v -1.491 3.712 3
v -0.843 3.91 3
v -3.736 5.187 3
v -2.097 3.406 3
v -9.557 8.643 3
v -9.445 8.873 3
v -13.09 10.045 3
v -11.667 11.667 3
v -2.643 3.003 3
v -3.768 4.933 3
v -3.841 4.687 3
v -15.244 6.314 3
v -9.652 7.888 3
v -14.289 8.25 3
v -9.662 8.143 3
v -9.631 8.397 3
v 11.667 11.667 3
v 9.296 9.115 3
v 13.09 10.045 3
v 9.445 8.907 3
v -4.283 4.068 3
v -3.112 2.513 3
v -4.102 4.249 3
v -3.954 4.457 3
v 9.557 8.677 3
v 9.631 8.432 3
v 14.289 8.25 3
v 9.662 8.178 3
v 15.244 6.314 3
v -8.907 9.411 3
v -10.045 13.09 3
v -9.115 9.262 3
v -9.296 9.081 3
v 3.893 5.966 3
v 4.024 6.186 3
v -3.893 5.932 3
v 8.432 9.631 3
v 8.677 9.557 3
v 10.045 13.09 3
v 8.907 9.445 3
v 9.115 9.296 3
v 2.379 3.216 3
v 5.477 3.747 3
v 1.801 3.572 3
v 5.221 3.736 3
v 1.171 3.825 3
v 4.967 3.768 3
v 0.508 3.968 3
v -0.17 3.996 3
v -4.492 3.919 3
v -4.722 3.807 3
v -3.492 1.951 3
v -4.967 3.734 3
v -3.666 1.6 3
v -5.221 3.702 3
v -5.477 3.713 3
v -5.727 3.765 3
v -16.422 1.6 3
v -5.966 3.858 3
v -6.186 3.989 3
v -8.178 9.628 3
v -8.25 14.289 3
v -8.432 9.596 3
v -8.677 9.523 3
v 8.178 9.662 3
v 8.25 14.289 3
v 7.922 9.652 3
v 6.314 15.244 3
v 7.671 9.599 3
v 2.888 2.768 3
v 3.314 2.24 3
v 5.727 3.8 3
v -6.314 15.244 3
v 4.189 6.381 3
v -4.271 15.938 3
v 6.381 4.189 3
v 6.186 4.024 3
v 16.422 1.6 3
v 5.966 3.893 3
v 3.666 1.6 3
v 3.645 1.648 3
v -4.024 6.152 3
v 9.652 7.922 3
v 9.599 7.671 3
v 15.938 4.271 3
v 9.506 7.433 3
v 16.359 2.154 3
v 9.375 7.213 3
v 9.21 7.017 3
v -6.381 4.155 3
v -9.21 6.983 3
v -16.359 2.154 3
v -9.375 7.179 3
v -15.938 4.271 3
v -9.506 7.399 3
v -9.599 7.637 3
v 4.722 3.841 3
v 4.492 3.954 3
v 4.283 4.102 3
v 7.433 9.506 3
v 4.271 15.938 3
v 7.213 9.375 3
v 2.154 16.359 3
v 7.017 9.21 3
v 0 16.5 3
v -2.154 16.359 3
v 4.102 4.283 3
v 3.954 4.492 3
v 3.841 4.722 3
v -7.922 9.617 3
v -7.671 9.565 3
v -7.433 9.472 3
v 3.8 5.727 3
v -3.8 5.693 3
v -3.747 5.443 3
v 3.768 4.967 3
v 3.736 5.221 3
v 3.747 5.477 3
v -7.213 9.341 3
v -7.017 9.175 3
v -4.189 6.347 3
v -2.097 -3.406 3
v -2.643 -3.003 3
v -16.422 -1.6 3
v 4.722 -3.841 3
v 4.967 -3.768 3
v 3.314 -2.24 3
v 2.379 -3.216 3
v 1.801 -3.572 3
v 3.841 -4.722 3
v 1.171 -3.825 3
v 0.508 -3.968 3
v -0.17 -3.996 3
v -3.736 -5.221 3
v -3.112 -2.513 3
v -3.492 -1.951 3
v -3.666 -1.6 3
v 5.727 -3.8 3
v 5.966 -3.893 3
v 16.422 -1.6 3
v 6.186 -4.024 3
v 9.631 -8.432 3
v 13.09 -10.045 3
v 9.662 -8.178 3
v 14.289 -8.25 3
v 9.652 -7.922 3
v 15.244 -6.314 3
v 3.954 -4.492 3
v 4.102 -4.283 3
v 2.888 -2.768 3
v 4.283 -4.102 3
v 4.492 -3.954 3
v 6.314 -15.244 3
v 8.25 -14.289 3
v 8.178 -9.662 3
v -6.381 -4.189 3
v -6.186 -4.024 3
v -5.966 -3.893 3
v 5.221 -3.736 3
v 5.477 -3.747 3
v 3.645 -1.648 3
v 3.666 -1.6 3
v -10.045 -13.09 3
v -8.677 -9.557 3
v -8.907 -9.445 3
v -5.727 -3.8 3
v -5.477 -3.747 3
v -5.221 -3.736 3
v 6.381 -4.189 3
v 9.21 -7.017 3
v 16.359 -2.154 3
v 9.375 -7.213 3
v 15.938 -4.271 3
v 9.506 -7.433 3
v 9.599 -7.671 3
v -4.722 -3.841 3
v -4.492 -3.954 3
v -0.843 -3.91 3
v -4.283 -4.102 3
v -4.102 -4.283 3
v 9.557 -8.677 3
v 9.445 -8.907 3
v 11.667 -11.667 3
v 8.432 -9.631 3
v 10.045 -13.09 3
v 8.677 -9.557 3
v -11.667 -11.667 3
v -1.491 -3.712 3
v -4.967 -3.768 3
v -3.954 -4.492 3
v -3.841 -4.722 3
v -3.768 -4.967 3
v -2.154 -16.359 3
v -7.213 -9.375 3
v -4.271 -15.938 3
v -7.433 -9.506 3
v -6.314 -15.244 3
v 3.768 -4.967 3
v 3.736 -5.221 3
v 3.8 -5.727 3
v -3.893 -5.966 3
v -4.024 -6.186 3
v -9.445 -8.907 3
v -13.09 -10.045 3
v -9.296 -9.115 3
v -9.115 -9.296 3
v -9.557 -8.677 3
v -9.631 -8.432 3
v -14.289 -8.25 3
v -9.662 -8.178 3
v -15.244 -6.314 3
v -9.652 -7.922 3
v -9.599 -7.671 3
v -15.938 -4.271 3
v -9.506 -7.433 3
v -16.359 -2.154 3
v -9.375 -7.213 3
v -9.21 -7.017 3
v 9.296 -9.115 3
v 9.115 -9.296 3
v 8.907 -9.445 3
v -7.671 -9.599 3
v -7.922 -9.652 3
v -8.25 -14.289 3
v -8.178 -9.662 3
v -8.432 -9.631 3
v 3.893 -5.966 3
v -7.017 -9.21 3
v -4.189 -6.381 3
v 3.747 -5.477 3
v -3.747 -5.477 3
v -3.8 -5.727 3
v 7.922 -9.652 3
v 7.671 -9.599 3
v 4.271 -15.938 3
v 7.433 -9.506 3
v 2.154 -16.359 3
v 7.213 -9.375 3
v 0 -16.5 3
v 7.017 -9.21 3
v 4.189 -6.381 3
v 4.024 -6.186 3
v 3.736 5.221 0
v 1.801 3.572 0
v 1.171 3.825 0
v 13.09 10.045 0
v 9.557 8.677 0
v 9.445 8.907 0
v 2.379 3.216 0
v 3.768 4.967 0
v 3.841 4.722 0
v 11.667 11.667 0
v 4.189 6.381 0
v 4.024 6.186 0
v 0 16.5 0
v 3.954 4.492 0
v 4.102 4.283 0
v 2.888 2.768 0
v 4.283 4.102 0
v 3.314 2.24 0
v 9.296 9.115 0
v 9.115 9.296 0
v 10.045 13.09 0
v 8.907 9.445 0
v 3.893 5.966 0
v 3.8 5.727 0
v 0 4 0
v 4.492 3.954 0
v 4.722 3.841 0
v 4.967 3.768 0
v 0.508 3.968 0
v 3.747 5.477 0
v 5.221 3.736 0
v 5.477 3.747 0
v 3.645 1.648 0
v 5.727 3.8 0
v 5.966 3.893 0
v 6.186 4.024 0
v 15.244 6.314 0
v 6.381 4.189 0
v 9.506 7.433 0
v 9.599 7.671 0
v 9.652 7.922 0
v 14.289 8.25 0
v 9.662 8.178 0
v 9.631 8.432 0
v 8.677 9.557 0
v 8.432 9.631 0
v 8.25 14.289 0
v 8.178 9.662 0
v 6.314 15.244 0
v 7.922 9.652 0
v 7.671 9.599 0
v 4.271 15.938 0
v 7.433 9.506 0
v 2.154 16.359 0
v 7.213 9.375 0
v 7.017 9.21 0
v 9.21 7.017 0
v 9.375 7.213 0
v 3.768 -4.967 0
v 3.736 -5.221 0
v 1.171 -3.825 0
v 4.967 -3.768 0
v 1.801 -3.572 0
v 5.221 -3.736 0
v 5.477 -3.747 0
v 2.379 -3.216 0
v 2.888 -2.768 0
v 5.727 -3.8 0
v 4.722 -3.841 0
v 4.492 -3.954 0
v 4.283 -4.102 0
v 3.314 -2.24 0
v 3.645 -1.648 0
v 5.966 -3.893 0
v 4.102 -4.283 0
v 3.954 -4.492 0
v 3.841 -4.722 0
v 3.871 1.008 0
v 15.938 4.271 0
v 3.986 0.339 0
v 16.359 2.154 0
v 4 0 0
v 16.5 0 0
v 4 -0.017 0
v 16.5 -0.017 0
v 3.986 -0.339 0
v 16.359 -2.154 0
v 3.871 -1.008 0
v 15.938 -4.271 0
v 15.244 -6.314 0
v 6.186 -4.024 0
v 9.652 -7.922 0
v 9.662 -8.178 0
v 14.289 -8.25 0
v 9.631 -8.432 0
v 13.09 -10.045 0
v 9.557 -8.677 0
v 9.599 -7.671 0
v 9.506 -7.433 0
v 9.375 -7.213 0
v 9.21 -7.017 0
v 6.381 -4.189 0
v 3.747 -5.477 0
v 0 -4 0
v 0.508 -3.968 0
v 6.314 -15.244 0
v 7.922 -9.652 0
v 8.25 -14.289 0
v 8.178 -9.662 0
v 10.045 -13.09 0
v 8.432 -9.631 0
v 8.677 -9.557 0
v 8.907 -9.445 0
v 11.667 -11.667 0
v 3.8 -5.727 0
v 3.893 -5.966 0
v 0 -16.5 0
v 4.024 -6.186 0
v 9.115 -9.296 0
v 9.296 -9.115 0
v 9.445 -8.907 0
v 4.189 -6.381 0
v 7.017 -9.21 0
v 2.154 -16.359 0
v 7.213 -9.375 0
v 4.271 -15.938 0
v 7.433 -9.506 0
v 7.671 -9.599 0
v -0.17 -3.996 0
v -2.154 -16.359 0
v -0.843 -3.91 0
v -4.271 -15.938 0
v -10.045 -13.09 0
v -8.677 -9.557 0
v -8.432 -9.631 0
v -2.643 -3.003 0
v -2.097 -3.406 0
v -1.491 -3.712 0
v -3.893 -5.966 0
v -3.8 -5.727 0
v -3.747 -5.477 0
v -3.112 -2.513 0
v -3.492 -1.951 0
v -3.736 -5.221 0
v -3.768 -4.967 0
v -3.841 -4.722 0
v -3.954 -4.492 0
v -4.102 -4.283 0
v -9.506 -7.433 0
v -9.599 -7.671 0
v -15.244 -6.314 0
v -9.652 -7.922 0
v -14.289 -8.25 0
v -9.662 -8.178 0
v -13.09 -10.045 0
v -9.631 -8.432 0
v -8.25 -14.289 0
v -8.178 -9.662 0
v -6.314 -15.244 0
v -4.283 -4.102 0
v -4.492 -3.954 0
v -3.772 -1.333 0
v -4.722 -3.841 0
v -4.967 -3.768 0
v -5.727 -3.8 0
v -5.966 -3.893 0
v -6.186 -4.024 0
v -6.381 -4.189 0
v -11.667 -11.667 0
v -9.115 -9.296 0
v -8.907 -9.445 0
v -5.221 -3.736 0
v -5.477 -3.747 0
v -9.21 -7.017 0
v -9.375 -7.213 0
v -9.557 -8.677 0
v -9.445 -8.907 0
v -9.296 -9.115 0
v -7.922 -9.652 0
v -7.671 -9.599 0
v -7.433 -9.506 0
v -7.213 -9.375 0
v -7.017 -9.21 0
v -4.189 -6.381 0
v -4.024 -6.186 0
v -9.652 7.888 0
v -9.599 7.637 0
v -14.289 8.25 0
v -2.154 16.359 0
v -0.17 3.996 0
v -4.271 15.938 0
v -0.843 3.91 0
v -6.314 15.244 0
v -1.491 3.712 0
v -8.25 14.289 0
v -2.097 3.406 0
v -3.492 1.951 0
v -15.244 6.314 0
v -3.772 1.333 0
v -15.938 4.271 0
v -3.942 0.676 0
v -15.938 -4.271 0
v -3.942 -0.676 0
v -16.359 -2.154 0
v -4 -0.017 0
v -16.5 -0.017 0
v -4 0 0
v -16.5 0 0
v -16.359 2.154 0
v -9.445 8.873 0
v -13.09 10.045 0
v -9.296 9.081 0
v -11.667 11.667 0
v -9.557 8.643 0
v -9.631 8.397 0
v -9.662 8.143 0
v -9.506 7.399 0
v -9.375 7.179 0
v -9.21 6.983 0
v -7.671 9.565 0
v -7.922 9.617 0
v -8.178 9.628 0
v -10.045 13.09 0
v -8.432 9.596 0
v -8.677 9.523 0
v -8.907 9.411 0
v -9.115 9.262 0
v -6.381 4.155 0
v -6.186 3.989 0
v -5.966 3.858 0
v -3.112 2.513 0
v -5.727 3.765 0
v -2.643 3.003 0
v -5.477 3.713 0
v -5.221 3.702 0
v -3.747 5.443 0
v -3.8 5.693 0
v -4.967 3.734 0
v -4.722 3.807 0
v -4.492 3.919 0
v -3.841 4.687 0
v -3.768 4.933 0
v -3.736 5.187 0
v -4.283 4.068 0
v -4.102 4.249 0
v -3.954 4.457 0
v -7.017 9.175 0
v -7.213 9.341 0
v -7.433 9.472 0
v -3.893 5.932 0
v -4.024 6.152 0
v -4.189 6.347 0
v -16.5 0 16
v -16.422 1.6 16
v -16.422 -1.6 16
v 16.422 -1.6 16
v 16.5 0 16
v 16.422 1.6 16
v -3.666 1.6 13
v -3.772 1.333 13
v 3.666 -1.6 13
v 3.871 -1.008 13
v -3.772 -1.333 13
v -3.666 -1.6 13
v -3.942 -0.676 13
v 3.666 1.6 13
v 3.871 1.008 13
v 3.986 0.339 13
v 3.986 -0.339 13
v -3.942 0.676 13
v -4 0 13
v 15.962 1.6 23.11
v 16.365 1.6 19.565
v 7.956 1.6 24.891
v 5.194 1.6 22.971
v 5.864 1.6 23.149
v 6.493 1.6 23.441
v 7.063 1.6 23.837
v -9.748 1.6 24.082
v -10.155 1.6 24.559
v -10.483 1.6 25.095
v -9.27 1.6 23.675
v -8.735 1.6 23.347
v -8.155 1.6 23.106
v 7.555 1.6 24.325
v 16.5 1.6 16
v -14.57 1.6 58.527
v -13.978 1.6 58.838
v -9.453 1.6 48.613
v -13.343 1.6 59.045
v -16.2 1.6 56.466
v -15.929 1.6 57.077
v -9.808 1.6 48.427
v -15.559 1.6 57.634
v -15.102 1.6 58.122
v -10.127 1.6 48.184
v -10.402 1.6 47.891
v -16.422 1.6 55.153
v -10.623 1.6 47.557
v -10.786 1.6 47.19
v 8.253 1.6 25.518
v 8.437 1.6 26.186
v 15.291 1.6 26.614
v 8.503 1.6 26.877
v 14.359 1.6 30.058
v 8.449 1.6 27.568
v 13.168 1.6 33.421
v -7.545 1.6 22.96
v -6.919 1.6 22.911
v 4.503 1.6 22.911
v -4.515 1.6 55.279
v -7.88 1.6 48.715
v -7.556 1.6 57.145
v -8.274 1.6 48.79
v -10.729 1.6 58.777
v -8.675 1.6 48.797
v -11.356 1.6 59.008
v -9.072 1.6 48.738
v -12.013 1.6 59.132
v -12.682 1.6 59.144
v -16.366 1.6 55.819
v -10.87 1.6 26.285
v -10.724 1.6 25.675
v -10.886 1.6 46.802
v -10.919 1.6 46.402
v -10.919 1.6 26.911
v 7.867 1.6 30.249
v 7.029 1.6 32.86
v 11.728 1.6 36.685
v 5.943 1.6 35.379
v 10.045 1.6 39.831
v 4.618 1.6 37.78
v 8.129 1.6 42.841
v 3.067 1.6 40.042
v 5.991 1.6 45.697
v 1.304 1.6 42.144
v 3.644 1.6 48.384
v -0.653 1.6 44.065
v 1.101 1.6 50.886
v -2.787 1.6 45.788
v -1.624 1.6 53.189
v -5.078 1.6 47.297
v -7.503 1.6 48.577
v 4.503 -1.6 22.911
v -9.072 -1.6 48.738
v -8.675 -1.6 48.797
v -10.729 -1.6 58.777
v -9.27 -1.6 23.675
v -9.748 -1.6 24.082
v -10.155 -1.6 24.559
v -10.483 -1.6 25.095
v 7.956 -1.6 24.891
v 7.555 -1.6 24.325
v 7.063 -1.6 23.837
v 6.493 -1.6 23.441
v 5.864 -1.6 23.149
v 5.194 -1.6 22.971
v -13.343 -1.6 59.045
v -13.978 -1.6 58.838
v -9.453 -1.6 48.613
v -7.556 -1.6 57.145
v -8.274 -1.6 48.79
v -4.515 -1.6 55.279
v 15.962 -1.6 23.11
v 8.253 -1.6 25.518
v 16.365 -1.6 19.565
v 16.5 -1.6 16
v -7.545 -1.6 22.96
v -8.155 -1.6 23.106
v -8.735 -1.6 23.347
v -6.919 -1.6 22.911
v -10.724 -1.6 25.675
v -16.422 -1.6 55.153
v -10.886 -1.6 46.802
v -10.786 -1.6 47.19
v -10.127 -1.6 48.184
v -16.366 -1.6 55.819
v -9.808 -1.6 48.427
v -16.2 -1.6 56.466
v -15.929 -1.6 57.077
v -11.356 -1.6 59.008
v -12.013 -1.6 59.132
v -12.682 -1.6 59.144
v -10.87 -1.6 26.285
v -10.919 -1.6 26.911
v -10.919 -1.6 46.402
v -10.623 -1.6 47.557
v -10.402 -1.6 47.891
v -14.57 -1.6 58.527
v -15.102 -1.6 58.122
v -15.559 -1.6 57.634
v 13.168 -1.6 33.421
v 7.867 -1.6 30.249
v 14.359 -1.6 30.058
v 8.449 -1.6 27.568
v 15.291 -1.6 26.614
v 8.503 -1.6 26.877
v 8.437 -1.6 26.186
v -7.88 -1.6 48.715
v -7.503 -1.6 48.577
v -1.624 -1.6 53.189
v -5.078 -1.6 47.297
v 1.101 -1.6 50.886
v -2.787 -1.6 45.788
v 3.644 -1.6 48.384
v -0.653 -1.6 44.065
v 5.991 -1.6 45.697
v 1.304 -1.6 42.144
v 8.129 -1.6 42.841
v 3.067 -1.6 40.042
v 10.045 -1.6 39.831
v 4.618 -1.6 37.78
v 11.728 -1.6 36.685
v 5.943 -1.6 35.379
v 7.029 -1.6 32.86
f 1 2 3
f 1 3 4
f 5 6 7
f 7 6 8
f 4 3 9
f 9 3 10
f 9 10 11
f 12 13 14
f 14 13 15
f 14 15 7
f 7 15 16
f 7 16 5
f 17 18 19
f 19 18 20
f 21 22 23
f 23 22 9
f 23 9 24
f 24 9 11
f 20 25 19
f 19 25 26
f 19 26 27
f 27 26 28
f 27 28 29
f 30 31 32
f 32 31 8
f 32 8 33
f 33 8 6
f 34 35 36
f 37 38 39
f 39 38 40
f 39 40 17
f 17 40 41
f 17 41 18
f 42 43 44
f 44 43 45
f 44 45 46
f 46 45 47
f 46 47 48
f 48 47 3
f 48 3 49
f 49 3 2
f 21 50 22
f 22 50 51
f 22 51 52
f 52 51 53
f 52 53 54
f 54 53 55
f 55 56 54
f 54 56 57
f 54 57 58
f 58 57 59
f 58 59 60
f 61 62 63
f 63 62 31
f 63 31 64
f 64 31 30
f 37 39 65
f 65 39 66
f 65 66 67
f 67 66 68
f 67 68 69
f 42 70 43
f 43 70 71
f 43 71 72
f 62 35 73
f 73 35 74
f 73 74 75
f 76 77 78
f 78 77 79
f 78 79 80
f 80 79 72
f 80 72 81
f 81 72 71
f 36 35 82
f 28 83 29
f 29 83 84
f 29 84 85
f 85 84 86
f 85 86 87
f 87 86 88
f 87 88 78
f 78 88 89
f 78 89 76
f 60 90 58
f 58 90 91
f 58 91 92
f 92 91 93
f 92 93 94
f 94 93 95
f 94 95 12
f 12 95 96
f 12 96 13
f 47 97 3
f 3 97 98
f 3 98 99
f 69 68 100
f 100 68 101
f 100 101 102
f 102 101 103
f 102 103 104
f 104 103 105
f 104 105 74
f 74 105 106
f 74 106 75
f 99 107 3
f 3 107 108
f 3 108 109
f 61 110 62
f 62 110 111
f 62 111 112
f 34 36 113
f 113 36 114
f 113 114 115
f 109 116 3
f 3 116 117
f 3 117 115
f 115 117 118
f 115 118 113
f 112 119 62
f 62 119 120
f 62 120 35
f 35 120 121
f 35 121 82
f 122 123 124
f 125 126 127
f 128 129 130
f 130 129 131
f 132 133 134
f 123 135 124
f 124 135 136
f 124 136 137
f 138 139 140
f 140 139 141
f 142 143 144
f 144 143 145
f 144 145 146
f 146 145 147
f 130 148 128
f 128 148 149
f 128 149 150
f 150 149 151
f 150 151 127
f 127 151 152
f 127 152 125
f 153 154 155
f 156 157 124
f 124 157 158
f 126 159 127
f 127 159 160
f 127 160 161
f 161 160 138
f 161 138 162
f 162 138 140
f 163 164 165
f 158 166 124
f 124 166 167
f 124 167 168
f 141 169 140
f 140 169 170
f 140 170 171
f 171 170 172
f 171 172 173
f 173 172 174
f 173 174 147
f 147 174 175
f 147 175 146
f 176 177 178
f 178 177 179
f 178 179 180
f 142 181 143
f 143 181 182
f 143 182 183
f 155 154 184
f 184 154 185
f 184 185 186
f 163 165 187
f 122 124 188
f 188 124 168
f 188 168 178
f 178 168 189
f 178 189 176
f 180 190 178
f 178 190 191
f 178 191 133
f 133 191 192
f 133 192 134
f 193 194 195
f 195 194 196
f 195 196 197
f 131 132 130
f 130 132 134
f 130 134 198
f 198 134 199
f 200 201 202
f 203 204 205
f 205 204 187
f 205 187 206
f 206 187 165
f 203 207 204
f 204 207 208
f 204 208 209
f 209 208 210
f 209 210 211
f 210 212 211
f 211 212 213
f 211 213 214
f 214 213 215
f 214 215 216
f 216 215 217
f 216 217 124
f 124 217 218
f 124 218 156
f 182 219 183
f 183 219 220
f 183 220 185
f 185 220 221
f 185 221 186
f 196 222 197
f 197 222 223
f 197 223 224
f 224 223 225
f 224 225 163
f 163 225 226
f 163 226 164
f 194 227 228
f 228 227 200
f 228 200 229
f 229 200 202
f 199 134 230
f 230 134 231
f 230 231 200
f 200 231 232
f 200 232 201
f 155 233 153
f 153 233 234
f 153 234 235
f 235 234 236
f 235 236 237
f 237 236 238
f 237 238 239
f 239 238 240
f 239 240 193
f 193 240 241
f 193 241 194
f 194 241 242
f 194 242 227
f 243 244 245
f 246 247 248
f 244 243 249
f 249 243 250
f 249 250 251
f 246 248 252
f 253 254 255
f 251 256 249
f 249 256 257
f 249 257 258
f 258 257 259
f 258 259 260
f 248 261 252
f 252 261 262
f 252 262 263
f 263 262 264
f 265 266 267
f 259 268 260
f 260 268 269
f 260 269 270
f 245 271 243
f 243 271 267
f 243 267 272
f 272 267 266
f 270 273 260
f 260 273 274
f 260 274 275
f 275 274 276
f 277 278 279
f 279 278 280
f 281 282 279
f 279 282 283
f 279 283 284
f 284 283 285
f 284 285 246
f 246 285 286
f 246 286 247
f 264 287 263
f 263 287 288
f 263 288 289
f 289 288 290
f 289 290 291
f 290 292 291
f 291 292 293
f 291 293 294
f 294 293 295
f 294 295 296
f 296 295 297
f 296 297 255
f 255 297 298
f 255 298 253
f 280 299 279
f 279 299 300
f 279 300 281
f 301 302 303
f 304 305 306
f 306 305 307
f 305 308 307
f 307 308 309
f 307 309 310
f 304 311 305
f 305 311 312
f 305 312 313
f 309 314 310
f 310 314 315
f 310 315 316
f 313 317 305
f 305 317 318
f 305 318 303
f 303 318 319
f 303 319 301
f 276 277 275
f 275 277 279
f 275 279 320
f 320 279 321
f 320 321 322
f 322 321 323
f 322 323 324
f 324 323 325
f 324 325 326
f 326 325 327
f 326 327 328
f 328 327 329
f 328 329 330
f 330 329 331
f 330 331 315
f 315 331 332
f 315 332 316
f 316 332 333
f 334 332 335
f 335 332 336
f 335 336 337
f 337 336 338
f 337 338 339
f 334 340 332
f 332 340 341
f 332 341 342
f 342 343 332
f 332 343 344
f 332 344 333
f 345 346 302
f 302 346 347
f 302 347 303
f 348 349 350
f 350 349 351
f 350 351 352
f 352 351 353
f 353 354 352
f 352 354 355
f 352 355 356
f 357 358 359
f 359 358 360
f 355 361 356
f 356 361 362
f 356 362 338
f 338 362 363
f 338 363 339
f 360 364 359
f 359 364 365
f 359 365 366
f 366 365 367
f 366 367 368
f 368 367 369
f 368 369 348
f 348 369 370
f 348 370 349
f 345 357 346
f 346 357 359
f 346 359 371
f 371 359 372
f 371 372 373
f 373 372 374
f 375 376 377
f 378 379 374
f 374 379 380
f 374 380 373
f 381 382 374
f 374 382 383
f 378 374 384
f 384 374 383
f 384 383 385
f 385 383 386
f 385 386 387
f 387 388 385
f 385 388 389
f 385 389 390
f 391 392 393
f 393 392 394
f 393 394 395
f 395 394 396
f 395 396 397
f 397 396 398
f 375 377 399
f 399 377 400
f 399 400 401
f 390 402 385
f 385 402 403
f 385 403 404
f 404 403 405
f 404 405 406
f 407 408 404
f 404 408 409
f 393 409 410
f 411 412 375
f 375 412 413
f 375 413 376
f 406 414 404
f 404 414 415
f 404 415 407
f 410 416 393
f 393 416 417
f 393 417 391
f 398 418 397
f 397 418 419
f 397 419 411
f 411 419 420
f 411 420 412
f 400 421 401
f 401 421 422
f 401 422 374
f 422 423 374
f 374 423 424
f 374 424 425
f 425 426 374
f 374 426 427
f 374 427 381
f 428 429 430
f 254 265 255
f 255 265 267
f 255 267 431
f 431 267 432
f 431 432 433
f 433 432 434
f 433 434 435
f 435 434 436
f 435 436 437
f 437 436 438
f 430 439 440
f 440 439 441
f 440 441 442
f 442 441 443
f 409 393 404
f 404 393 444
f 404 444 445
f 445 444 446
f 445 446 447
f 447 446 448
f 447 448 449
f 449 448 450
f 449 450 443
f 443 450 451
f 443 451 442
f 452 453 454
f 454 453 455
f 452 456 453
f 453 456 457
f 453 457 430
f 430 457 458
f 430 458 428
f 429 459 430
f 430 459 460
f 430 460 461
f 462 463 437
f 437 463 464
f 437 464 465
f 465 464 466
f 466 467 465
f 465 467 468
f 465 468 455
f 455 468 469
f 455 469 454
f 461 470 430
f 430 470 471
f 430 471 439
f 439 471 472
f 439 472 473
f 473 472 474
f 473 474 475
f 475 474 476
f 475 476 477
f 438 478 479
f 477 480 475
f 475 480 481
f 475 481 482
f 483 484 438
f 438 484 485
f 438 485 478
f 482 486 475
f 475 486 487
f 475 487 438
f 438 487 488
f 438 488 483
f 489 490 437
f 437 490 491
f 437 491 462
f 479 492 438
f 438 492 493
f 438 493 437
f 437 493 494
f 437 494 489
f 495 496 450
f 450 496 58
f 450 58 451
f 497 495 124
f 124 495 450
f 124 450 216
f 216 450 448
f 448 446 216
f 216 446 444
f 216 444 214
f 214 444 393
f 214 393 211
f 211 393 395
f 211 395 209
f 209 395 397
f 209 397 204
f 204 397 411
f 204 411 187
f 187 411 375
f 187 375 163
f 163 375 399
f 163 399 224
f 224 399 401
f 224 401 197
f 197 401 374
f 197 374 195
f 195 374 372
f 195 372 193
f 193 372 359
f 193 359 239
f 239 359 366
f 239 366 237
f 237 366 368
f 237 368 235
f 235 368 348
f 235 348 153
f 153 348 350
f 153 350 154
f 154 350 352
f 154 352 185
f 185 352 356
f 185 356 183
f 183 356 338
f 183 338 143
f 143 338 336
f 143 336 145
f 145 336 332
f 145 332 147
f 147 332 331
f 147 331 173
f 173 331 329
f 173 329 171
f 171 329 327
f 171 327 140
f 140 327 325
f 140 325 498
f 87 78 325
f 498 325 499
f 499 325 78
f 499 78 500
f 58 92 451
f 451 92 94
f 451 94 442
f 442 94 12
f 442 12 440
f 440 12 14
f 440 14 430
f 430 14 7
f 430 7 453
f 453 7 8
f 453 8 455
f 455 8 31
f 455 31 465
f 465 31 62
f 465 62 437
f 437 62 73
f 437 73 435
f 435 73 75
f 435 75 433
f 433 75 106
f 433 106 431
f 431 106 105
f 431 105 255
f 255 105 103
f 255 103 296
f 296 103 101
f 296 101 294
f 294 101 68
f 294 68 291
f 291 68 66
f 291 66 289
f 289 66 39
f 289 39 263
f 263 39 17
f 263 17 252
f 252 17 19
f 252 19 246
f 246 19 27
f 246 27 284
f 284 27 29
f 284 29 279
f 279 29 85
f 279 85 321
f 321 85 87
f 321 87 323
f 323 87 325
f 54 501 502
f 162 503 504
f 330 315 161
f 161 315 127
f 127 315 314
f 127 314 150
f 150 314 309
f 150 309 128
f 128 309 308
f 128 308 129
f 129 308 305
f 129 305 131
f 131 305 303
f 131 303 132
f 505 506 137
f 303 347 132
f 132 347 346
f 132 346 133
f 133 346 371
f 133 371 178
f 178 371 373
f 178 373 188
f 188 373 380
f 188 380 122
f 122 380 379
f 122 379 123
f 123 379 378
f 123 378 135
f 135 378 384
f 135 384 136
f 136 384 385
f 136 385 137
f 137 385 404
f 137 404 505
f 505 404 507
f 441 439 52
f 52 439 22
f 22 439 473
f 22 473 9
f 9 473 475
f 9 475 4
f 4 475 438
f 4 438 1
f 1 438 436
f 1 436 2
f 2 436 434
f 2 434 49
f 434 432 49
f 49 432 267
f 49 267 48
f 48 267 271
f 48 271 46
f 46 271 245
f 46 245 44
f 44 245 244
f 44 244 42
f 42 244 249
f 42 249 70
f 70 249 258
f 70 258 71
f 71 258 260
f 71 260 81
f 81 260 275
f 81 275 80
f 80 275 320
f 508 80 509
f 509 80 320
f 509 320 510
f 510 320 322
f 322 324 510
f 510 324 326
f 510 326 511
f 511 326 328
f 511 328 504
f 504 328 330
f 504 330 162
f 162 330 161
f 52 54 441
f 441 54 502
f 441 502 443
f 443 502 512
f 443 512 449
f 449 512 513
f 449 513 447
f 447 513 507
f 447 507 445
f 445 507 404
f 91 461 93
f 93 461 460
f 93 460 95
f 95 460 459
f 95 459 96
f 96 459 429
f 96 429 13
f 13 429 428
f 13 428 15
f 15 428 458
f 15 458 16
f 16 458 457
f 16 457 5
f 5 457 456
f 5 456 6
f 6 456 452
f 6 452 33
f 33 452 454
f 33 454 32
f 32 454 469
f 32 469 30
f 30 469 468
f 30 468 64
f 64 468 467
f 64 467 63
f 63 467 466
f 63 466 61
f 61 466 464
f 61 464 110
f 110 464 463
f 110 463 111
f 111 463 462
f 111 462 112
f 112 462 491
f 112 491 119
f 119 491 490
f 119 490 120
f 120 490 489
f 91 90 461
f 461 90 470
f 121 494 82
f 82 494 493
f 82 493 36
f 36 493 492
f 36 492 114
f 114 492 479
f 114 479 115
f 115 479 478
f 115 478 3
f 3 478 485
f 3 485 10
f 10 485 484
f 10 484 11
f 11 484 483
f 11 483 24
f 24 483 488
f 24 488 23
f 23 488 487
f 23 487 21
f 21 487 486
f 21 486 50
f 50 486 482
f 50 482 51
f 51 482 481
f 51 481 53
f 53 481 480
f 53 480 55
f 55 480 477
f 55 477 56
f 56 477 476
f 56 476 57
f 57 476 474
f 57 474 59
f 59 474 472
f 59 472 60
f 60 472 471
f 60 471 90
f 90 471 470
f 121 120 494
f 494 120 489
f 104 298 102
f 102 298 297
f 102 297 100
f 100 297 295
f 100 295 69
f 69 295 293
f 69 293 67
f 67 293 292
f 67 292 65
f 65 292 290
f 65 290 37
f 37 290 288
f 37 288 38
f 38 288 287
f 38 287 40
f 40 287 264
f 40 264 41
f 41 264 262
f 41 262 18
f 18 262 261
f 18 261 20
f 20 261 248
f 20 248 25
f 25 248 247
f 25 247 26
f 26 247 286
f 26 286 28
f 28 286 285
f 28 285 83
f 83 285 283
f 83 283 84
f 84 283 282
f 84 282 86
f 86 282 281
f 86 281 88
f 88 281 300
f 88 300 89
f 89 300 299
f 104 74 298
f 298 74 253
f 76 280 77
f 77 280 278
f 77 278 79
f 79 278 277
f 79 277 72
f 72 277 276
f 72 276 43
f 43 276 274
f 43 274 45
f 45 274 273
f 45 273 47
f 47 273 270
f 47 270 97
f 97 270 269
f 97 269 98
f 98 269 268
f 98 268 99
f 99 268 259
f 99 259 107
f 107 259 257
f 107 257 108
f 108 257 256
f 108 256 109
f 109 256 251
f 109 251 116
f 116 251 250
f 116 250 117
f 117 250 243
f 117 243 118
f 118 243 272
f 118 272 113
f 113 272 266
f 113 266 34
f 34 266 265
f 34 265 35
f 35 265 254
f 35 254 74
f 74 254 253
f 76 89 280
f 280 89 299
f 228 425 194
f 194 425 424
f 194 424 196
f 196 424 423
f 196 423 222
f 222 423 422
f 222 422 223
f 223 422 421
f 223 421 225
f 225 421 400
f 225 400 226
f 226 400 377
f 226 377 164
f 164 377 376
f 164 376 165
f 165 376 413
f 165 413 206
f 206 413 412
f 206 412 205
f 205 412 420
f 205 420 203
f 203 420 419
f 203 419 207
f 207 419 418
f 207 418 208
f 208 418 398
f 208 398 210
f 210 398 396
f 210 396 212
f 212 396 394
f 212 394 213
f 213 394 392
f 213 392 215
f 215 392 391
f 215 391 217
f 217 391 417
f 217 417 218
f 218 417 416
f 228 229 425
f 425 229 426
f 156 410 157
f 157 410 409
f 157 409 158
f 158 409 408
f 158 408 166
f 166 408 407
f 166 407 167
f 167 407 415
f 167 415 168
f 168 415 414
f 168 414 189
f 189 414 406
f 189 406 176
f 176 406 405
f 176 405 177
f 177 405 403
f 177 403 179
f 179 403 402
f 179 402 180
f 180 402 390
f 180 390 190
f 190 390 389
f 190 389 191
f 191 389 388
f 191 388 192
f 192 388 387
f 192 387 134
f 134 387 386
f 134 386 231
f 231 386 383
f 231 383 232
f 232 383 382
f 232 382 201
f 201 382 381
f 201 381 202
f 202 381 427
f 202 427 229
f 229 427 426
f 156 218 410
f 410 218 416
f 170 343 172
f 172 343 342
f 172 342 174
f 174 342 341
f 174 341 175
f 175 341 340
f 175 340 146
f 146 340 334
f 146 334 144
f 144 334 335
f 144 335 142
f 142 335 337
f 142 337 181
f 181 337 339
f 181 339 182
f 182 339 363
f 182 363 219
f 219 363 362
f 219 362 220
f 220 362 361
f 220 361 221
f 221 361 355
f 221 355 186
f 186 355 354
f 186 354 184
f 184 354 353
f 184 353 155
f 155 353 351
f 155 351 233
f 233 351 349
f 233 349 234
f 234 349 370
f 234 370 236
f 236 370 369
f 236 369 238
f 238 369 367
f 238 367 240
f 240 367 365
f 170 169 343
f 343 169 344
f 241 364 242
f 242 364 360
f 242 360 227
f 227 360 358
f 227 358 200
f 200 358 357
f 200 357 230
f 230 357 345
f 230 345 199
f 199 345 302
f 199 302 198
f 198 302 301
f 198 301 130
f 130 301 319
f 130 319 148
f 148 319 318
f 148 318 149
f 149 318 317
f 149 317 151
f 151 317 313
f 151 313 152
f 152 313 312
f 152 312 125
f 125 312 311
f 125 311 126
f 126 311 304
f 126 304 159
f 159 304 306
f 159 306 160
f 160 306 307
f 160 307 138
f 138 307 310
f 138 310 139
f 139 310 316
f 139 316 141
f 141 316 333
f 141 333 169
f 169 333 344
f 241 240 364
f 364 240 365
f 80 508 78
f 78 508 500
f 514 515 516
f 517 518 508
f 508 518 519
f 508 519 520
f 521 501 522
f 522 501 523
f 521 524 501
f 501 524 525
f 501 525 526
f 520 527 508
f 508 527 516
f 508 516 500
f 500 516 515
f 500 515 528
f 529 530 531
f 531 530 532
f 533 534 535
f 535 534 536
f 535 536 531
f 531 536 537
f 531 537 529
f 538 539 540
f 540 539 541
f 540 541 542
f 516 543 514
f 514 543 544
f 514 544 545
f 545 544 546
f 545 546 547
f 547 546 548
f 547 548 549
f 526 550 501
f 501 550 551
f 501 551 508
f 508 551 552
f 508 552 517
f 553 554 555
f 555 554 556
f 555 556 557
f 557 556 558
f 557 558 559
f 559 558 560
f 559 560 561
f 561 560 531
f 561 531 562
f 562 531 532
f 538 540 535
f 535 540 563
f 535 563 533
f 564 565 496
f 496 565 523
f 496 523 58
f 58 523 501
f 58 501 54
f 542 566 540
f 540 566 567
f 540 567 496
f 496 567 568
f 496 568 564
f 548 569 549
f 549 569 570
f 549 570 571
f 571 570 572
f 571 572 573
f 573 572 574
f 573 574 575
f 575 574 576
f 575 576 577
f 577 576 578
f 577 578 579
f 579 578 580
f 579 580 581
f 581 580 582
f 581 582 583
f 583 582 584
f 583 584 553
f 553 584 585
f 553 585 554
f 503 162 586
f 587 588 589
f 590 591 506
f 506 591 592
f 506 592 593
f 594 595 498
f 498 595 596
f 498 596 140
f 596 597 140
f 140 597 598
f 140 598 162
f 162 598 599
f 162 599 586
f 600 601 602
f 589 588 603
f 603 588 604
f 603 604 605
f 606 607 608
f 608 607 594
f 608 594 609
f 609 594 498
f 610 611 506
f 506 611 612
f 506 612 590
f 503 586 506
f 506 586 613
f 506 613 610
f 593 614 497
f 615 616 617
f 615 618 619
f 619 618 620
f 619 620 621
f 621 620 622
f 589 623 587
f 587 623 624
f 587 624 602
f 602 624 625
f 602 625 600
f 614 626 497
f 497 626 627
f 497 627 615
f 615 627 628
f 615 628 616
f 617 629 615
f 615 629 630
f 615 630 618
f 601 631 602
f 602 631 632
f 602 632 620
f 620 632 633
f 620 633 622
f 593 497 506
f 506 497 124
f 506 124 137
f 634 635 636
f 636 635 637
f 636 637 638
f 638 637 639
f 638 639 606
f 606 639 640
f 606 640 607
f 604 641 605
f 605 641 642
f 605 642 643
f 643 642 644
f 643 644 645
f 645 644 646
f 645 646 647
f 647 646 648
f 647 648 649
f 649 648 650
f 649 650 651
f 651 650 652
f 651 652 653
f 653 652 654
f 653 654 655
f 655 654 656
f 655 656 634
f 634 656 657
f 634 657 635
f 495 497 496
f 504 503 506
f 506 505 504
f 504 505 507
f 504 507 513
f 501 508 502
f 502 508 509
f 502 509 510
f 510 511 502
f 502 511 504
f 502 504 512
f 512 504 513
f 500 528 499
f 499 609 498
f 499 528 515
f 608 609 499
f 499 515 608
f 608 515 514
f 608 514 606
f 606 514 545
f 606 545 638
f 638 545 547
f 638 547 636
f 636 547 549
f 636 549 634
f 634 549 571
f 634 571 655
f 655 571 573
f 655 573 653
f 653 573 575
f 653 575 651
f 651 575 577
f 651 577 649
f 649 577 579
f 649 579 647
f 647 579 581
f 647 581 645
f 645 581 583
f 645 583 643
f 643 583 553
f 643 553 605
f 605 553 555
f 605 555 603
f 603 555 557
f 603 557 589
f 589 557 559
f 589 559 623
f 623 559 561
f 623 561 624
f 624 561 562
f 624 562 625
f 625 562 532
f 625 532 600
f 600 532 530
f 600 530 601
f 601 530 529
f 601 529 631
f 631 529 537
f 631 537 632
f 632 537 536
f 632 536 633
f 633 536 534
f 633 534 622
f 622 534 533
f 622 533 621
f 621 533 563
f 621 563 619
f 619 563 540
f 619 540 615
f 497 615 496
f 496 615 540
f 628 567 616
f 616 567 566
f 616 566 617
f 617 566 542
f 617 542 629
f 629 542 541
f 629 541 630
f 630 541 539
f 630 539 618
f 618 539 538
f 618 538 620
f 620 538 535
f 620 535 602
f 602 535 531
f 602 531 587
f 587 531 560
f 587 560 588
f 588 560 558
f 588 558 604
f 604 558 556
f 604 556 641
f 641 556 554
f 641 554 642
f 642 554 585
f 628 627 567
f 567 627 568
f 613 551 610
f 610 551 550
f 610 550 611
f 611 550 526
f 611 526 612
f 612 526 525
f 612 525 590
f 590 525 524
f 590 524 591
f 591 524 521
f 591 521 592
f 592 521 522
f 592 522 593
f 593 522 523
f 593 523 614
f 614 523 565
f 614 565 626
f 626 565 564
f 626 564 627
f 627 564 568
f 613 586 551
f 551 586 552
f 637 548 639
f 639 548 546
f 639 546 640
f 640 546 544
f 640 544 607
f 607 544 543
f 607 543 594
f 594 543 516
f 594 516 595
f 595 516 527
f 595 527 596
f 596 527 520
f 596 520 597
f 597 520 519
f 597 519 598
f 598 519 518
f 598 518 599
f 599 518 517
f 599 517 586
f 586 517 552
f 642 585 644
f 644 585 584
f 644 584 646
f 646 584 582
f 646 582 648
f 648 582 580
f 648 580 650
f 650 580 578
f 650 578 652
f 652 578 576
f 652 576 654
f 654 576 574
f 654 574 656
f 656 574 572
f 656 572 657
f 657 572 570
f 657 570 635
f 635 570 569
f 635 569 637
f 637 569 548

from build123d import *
from build123d.topology import SkipClean

# Parameters (mm, degrees)
SKETCH_1_R       = 16.5
SKETCH_1_R_2     = 4
EXTRUDE_4_DEPTH  = 3
EXTRUDE_6_DEPTH  = 10
EXTRUDE_12_DEPTH = 3
EXTRUDE_14_DEPTH = 3.2


with BuildPart() as part:
    # 草图1 → 凸台-拉伸4 (new body)
    with BuildSketch(Plane.XY):
        with Locations((0, 3e-09)):
            Circle(SKETCH_1_R)
        with Locations((0, 3e-09)):
            Circle(SKETCH_1_R_2, mode=Mode.SUBTRACT)
        with BuildLine():
            Line((-7.017492281, 9.175302033), (-4.189065156, 6.346874908))
            ThreePointArc((-4.189065156, 6.346874908), (-4.189065156, 4.154843887), (-6.381096178, 4.154843887))
            Line((-6.381096178, 4.154843887), (-9.209523303, 6.983271012))
            ThreePointArc((-9.209523303, 6.983271012), (-9.209523303, 9.175302033), (-7.017492281, 9.175302033))
        make_face(mode=Mode.SUBTRACT)
        with BuildLine():
            Line((7.017492281, 9.209523305), (4.189065156, 6.381096181))
            ThreePointArc((4.189065156, 6.381096181), (4.189065156, 4.189065159), (6.381096178, 4.189065159))
            Line((6.381096178, 4.189065159), (9.209523303, 7.017492284))
            ThreePointArc((9.209523303, 7.017492284), (9.209523303, 9.209523305), (7.017492281, 9.209523305))
        make_face(mode=Mode.SUBTRACT)
        with BuildLine():
            Line((-7.017492281, -9.2095233), (-4.189065156, -6.381096175))
            ThreePointArc((-4.189065156, -6.381096175), (-4.189065156, -4.189065153), (-6.381096178, -4.189065153))
            Line((-6.381096178, -4.189065153), (-9.209523303, -7.017492278))
            ThreePointArc((-9.209523303, -7.017492278), (-9.209523303, -9.2095233), (-7.017492281, -9.2095233))
        make_face(mode=Mode.SUBTRACT)
        with BuildLine():
            Line((7.017492281, -9.2095233), (4.189065156, -6.381096175))
            ThreePointArc((4.189065156, -6.381096175), (4.189065156, -4.189065153), (6.381096178, -4.189065153))
            Line((6.381096178, -4.189065153), (9.209523303, -7.017492278))
            ThreePointArc((9.209523303, -7.017492278), (9.209523303, -9.2095233), (7.017492281, -9.2095233))
        make_face(mode=Mode.SUBTRACT)
    extrude(amount=EXTRUDE_4_DEPTH)

    # 草图3 → 凸台-拉伸6 (add)
    with SkipClean():  # the faces are left unmerged after this step: merging them gives an invalid solid
        with BuildSketch(Plane.XY.offset(3)):
            with BuildLine():
                Line((16.422241017, 1.600000001), (3.666060557, 1.600000001))
                ThreePointArc((3.666060557, 1.600000001), (4, 0), (3.666060555, -1.6))
                Line((3.666060555, -1.6), (16.422241016, -1.6))
                ThreePointArc((16.422241016, -1.6), (16.5, 0), (16.422241017, 1.600000001))
            make_face()
            with BuildLine():
                Line((-16.422241017, 1.600000001), (-3.666060557, 1.600000001))
                ThreePointArc((-3.666060557, 1.600000001), (-4, 0), (-3.666060555, -1.6))
                Line((-3.666060555, -1.6), (-16.422241016, -1.6))
                ThreePointArc((-16.422241016, -1.6), (-16.5, 0), (-16.422241017, 1.600000001))
            make_face()
        extrude(amount=EXTRUDE_6_DEPTH)

    # 草图4 → 凸台-拉伸12 (add)
    with SkipClean():  # the faces are left unmerged after this step: merging them gives an invalid solid
        with BuildSketch(Plane.XY.offset(13)):
            with BuildLine():
                Line((-16.422241017, 1.600000001), (16.422241017, 1.600000001))
                ThreePointArc((16.422241017, 1.600000001), (16.5, 0), (16.422241016, -1.6))
                Line((16.422241016, -1.6), (-16.422241016, -1.6))
                ThreePointArc((-16.422241016, -1.6), (-16.5, 0), (-16.422241017, 1.600000001))
            make_face()
        extrude(amount=EXTRUDE_12_DEPTH)

    # 草图8 → 凸台-拉伸14 (add)
    with SkipClean():  # the faces are left unmerged after this step: merging them gives an invalid solid
        with BuildSketch(Plane(origin=(0, 1.600000001, 0), x_dir=(1, 0, 0), z_dir=(0, 1, 0))):
            with BuildLine():
                Line((-16.422241017, -16), (-16.422241017, -55.152668259))
                ThreePointArc((-16.422241017, -55.152668259), (-14.570166648, -58.527044569), (-10.729033275, -58.776622942))
                ThreePointArc((-10.729033275, -58.776622942), (9.115230867, -41.353795196), (16.5, -16))
                Line((16.5, -16), (-16.422241017, -16))
            make_face()
            with BuildLine():
                Line((-6.919334161, -22.910583914), (4.502935407, -22.910583914))
                ThreePointArc((4.502935407, -22.910583914), (7.555031335, -24.325103215), (8.448502964, -27.568228691))
                ThreePointArc((8.448502964, -27.568228691), (3.06689673, -40.042318745), (-7.503409516, -48.576557679))
                ThreePointArc((-7.503409516, -48.576557679), (-9.80808954, -48.426810655), (-10.919334161, -46.402184869))
                Line((-10.919334161, -46.402184869), (-10.919334161, -26.910583914))
                ThreePointArc((-10.919334161, -26.910583914), (-9.747761286, -24.082156789), (-6.919334161, -22.910583914))
            make_face(mode=Mode.SUBTRACT)
        extrude(amount=-EXTRUDE_14_DEPTH)


solid = part.part
